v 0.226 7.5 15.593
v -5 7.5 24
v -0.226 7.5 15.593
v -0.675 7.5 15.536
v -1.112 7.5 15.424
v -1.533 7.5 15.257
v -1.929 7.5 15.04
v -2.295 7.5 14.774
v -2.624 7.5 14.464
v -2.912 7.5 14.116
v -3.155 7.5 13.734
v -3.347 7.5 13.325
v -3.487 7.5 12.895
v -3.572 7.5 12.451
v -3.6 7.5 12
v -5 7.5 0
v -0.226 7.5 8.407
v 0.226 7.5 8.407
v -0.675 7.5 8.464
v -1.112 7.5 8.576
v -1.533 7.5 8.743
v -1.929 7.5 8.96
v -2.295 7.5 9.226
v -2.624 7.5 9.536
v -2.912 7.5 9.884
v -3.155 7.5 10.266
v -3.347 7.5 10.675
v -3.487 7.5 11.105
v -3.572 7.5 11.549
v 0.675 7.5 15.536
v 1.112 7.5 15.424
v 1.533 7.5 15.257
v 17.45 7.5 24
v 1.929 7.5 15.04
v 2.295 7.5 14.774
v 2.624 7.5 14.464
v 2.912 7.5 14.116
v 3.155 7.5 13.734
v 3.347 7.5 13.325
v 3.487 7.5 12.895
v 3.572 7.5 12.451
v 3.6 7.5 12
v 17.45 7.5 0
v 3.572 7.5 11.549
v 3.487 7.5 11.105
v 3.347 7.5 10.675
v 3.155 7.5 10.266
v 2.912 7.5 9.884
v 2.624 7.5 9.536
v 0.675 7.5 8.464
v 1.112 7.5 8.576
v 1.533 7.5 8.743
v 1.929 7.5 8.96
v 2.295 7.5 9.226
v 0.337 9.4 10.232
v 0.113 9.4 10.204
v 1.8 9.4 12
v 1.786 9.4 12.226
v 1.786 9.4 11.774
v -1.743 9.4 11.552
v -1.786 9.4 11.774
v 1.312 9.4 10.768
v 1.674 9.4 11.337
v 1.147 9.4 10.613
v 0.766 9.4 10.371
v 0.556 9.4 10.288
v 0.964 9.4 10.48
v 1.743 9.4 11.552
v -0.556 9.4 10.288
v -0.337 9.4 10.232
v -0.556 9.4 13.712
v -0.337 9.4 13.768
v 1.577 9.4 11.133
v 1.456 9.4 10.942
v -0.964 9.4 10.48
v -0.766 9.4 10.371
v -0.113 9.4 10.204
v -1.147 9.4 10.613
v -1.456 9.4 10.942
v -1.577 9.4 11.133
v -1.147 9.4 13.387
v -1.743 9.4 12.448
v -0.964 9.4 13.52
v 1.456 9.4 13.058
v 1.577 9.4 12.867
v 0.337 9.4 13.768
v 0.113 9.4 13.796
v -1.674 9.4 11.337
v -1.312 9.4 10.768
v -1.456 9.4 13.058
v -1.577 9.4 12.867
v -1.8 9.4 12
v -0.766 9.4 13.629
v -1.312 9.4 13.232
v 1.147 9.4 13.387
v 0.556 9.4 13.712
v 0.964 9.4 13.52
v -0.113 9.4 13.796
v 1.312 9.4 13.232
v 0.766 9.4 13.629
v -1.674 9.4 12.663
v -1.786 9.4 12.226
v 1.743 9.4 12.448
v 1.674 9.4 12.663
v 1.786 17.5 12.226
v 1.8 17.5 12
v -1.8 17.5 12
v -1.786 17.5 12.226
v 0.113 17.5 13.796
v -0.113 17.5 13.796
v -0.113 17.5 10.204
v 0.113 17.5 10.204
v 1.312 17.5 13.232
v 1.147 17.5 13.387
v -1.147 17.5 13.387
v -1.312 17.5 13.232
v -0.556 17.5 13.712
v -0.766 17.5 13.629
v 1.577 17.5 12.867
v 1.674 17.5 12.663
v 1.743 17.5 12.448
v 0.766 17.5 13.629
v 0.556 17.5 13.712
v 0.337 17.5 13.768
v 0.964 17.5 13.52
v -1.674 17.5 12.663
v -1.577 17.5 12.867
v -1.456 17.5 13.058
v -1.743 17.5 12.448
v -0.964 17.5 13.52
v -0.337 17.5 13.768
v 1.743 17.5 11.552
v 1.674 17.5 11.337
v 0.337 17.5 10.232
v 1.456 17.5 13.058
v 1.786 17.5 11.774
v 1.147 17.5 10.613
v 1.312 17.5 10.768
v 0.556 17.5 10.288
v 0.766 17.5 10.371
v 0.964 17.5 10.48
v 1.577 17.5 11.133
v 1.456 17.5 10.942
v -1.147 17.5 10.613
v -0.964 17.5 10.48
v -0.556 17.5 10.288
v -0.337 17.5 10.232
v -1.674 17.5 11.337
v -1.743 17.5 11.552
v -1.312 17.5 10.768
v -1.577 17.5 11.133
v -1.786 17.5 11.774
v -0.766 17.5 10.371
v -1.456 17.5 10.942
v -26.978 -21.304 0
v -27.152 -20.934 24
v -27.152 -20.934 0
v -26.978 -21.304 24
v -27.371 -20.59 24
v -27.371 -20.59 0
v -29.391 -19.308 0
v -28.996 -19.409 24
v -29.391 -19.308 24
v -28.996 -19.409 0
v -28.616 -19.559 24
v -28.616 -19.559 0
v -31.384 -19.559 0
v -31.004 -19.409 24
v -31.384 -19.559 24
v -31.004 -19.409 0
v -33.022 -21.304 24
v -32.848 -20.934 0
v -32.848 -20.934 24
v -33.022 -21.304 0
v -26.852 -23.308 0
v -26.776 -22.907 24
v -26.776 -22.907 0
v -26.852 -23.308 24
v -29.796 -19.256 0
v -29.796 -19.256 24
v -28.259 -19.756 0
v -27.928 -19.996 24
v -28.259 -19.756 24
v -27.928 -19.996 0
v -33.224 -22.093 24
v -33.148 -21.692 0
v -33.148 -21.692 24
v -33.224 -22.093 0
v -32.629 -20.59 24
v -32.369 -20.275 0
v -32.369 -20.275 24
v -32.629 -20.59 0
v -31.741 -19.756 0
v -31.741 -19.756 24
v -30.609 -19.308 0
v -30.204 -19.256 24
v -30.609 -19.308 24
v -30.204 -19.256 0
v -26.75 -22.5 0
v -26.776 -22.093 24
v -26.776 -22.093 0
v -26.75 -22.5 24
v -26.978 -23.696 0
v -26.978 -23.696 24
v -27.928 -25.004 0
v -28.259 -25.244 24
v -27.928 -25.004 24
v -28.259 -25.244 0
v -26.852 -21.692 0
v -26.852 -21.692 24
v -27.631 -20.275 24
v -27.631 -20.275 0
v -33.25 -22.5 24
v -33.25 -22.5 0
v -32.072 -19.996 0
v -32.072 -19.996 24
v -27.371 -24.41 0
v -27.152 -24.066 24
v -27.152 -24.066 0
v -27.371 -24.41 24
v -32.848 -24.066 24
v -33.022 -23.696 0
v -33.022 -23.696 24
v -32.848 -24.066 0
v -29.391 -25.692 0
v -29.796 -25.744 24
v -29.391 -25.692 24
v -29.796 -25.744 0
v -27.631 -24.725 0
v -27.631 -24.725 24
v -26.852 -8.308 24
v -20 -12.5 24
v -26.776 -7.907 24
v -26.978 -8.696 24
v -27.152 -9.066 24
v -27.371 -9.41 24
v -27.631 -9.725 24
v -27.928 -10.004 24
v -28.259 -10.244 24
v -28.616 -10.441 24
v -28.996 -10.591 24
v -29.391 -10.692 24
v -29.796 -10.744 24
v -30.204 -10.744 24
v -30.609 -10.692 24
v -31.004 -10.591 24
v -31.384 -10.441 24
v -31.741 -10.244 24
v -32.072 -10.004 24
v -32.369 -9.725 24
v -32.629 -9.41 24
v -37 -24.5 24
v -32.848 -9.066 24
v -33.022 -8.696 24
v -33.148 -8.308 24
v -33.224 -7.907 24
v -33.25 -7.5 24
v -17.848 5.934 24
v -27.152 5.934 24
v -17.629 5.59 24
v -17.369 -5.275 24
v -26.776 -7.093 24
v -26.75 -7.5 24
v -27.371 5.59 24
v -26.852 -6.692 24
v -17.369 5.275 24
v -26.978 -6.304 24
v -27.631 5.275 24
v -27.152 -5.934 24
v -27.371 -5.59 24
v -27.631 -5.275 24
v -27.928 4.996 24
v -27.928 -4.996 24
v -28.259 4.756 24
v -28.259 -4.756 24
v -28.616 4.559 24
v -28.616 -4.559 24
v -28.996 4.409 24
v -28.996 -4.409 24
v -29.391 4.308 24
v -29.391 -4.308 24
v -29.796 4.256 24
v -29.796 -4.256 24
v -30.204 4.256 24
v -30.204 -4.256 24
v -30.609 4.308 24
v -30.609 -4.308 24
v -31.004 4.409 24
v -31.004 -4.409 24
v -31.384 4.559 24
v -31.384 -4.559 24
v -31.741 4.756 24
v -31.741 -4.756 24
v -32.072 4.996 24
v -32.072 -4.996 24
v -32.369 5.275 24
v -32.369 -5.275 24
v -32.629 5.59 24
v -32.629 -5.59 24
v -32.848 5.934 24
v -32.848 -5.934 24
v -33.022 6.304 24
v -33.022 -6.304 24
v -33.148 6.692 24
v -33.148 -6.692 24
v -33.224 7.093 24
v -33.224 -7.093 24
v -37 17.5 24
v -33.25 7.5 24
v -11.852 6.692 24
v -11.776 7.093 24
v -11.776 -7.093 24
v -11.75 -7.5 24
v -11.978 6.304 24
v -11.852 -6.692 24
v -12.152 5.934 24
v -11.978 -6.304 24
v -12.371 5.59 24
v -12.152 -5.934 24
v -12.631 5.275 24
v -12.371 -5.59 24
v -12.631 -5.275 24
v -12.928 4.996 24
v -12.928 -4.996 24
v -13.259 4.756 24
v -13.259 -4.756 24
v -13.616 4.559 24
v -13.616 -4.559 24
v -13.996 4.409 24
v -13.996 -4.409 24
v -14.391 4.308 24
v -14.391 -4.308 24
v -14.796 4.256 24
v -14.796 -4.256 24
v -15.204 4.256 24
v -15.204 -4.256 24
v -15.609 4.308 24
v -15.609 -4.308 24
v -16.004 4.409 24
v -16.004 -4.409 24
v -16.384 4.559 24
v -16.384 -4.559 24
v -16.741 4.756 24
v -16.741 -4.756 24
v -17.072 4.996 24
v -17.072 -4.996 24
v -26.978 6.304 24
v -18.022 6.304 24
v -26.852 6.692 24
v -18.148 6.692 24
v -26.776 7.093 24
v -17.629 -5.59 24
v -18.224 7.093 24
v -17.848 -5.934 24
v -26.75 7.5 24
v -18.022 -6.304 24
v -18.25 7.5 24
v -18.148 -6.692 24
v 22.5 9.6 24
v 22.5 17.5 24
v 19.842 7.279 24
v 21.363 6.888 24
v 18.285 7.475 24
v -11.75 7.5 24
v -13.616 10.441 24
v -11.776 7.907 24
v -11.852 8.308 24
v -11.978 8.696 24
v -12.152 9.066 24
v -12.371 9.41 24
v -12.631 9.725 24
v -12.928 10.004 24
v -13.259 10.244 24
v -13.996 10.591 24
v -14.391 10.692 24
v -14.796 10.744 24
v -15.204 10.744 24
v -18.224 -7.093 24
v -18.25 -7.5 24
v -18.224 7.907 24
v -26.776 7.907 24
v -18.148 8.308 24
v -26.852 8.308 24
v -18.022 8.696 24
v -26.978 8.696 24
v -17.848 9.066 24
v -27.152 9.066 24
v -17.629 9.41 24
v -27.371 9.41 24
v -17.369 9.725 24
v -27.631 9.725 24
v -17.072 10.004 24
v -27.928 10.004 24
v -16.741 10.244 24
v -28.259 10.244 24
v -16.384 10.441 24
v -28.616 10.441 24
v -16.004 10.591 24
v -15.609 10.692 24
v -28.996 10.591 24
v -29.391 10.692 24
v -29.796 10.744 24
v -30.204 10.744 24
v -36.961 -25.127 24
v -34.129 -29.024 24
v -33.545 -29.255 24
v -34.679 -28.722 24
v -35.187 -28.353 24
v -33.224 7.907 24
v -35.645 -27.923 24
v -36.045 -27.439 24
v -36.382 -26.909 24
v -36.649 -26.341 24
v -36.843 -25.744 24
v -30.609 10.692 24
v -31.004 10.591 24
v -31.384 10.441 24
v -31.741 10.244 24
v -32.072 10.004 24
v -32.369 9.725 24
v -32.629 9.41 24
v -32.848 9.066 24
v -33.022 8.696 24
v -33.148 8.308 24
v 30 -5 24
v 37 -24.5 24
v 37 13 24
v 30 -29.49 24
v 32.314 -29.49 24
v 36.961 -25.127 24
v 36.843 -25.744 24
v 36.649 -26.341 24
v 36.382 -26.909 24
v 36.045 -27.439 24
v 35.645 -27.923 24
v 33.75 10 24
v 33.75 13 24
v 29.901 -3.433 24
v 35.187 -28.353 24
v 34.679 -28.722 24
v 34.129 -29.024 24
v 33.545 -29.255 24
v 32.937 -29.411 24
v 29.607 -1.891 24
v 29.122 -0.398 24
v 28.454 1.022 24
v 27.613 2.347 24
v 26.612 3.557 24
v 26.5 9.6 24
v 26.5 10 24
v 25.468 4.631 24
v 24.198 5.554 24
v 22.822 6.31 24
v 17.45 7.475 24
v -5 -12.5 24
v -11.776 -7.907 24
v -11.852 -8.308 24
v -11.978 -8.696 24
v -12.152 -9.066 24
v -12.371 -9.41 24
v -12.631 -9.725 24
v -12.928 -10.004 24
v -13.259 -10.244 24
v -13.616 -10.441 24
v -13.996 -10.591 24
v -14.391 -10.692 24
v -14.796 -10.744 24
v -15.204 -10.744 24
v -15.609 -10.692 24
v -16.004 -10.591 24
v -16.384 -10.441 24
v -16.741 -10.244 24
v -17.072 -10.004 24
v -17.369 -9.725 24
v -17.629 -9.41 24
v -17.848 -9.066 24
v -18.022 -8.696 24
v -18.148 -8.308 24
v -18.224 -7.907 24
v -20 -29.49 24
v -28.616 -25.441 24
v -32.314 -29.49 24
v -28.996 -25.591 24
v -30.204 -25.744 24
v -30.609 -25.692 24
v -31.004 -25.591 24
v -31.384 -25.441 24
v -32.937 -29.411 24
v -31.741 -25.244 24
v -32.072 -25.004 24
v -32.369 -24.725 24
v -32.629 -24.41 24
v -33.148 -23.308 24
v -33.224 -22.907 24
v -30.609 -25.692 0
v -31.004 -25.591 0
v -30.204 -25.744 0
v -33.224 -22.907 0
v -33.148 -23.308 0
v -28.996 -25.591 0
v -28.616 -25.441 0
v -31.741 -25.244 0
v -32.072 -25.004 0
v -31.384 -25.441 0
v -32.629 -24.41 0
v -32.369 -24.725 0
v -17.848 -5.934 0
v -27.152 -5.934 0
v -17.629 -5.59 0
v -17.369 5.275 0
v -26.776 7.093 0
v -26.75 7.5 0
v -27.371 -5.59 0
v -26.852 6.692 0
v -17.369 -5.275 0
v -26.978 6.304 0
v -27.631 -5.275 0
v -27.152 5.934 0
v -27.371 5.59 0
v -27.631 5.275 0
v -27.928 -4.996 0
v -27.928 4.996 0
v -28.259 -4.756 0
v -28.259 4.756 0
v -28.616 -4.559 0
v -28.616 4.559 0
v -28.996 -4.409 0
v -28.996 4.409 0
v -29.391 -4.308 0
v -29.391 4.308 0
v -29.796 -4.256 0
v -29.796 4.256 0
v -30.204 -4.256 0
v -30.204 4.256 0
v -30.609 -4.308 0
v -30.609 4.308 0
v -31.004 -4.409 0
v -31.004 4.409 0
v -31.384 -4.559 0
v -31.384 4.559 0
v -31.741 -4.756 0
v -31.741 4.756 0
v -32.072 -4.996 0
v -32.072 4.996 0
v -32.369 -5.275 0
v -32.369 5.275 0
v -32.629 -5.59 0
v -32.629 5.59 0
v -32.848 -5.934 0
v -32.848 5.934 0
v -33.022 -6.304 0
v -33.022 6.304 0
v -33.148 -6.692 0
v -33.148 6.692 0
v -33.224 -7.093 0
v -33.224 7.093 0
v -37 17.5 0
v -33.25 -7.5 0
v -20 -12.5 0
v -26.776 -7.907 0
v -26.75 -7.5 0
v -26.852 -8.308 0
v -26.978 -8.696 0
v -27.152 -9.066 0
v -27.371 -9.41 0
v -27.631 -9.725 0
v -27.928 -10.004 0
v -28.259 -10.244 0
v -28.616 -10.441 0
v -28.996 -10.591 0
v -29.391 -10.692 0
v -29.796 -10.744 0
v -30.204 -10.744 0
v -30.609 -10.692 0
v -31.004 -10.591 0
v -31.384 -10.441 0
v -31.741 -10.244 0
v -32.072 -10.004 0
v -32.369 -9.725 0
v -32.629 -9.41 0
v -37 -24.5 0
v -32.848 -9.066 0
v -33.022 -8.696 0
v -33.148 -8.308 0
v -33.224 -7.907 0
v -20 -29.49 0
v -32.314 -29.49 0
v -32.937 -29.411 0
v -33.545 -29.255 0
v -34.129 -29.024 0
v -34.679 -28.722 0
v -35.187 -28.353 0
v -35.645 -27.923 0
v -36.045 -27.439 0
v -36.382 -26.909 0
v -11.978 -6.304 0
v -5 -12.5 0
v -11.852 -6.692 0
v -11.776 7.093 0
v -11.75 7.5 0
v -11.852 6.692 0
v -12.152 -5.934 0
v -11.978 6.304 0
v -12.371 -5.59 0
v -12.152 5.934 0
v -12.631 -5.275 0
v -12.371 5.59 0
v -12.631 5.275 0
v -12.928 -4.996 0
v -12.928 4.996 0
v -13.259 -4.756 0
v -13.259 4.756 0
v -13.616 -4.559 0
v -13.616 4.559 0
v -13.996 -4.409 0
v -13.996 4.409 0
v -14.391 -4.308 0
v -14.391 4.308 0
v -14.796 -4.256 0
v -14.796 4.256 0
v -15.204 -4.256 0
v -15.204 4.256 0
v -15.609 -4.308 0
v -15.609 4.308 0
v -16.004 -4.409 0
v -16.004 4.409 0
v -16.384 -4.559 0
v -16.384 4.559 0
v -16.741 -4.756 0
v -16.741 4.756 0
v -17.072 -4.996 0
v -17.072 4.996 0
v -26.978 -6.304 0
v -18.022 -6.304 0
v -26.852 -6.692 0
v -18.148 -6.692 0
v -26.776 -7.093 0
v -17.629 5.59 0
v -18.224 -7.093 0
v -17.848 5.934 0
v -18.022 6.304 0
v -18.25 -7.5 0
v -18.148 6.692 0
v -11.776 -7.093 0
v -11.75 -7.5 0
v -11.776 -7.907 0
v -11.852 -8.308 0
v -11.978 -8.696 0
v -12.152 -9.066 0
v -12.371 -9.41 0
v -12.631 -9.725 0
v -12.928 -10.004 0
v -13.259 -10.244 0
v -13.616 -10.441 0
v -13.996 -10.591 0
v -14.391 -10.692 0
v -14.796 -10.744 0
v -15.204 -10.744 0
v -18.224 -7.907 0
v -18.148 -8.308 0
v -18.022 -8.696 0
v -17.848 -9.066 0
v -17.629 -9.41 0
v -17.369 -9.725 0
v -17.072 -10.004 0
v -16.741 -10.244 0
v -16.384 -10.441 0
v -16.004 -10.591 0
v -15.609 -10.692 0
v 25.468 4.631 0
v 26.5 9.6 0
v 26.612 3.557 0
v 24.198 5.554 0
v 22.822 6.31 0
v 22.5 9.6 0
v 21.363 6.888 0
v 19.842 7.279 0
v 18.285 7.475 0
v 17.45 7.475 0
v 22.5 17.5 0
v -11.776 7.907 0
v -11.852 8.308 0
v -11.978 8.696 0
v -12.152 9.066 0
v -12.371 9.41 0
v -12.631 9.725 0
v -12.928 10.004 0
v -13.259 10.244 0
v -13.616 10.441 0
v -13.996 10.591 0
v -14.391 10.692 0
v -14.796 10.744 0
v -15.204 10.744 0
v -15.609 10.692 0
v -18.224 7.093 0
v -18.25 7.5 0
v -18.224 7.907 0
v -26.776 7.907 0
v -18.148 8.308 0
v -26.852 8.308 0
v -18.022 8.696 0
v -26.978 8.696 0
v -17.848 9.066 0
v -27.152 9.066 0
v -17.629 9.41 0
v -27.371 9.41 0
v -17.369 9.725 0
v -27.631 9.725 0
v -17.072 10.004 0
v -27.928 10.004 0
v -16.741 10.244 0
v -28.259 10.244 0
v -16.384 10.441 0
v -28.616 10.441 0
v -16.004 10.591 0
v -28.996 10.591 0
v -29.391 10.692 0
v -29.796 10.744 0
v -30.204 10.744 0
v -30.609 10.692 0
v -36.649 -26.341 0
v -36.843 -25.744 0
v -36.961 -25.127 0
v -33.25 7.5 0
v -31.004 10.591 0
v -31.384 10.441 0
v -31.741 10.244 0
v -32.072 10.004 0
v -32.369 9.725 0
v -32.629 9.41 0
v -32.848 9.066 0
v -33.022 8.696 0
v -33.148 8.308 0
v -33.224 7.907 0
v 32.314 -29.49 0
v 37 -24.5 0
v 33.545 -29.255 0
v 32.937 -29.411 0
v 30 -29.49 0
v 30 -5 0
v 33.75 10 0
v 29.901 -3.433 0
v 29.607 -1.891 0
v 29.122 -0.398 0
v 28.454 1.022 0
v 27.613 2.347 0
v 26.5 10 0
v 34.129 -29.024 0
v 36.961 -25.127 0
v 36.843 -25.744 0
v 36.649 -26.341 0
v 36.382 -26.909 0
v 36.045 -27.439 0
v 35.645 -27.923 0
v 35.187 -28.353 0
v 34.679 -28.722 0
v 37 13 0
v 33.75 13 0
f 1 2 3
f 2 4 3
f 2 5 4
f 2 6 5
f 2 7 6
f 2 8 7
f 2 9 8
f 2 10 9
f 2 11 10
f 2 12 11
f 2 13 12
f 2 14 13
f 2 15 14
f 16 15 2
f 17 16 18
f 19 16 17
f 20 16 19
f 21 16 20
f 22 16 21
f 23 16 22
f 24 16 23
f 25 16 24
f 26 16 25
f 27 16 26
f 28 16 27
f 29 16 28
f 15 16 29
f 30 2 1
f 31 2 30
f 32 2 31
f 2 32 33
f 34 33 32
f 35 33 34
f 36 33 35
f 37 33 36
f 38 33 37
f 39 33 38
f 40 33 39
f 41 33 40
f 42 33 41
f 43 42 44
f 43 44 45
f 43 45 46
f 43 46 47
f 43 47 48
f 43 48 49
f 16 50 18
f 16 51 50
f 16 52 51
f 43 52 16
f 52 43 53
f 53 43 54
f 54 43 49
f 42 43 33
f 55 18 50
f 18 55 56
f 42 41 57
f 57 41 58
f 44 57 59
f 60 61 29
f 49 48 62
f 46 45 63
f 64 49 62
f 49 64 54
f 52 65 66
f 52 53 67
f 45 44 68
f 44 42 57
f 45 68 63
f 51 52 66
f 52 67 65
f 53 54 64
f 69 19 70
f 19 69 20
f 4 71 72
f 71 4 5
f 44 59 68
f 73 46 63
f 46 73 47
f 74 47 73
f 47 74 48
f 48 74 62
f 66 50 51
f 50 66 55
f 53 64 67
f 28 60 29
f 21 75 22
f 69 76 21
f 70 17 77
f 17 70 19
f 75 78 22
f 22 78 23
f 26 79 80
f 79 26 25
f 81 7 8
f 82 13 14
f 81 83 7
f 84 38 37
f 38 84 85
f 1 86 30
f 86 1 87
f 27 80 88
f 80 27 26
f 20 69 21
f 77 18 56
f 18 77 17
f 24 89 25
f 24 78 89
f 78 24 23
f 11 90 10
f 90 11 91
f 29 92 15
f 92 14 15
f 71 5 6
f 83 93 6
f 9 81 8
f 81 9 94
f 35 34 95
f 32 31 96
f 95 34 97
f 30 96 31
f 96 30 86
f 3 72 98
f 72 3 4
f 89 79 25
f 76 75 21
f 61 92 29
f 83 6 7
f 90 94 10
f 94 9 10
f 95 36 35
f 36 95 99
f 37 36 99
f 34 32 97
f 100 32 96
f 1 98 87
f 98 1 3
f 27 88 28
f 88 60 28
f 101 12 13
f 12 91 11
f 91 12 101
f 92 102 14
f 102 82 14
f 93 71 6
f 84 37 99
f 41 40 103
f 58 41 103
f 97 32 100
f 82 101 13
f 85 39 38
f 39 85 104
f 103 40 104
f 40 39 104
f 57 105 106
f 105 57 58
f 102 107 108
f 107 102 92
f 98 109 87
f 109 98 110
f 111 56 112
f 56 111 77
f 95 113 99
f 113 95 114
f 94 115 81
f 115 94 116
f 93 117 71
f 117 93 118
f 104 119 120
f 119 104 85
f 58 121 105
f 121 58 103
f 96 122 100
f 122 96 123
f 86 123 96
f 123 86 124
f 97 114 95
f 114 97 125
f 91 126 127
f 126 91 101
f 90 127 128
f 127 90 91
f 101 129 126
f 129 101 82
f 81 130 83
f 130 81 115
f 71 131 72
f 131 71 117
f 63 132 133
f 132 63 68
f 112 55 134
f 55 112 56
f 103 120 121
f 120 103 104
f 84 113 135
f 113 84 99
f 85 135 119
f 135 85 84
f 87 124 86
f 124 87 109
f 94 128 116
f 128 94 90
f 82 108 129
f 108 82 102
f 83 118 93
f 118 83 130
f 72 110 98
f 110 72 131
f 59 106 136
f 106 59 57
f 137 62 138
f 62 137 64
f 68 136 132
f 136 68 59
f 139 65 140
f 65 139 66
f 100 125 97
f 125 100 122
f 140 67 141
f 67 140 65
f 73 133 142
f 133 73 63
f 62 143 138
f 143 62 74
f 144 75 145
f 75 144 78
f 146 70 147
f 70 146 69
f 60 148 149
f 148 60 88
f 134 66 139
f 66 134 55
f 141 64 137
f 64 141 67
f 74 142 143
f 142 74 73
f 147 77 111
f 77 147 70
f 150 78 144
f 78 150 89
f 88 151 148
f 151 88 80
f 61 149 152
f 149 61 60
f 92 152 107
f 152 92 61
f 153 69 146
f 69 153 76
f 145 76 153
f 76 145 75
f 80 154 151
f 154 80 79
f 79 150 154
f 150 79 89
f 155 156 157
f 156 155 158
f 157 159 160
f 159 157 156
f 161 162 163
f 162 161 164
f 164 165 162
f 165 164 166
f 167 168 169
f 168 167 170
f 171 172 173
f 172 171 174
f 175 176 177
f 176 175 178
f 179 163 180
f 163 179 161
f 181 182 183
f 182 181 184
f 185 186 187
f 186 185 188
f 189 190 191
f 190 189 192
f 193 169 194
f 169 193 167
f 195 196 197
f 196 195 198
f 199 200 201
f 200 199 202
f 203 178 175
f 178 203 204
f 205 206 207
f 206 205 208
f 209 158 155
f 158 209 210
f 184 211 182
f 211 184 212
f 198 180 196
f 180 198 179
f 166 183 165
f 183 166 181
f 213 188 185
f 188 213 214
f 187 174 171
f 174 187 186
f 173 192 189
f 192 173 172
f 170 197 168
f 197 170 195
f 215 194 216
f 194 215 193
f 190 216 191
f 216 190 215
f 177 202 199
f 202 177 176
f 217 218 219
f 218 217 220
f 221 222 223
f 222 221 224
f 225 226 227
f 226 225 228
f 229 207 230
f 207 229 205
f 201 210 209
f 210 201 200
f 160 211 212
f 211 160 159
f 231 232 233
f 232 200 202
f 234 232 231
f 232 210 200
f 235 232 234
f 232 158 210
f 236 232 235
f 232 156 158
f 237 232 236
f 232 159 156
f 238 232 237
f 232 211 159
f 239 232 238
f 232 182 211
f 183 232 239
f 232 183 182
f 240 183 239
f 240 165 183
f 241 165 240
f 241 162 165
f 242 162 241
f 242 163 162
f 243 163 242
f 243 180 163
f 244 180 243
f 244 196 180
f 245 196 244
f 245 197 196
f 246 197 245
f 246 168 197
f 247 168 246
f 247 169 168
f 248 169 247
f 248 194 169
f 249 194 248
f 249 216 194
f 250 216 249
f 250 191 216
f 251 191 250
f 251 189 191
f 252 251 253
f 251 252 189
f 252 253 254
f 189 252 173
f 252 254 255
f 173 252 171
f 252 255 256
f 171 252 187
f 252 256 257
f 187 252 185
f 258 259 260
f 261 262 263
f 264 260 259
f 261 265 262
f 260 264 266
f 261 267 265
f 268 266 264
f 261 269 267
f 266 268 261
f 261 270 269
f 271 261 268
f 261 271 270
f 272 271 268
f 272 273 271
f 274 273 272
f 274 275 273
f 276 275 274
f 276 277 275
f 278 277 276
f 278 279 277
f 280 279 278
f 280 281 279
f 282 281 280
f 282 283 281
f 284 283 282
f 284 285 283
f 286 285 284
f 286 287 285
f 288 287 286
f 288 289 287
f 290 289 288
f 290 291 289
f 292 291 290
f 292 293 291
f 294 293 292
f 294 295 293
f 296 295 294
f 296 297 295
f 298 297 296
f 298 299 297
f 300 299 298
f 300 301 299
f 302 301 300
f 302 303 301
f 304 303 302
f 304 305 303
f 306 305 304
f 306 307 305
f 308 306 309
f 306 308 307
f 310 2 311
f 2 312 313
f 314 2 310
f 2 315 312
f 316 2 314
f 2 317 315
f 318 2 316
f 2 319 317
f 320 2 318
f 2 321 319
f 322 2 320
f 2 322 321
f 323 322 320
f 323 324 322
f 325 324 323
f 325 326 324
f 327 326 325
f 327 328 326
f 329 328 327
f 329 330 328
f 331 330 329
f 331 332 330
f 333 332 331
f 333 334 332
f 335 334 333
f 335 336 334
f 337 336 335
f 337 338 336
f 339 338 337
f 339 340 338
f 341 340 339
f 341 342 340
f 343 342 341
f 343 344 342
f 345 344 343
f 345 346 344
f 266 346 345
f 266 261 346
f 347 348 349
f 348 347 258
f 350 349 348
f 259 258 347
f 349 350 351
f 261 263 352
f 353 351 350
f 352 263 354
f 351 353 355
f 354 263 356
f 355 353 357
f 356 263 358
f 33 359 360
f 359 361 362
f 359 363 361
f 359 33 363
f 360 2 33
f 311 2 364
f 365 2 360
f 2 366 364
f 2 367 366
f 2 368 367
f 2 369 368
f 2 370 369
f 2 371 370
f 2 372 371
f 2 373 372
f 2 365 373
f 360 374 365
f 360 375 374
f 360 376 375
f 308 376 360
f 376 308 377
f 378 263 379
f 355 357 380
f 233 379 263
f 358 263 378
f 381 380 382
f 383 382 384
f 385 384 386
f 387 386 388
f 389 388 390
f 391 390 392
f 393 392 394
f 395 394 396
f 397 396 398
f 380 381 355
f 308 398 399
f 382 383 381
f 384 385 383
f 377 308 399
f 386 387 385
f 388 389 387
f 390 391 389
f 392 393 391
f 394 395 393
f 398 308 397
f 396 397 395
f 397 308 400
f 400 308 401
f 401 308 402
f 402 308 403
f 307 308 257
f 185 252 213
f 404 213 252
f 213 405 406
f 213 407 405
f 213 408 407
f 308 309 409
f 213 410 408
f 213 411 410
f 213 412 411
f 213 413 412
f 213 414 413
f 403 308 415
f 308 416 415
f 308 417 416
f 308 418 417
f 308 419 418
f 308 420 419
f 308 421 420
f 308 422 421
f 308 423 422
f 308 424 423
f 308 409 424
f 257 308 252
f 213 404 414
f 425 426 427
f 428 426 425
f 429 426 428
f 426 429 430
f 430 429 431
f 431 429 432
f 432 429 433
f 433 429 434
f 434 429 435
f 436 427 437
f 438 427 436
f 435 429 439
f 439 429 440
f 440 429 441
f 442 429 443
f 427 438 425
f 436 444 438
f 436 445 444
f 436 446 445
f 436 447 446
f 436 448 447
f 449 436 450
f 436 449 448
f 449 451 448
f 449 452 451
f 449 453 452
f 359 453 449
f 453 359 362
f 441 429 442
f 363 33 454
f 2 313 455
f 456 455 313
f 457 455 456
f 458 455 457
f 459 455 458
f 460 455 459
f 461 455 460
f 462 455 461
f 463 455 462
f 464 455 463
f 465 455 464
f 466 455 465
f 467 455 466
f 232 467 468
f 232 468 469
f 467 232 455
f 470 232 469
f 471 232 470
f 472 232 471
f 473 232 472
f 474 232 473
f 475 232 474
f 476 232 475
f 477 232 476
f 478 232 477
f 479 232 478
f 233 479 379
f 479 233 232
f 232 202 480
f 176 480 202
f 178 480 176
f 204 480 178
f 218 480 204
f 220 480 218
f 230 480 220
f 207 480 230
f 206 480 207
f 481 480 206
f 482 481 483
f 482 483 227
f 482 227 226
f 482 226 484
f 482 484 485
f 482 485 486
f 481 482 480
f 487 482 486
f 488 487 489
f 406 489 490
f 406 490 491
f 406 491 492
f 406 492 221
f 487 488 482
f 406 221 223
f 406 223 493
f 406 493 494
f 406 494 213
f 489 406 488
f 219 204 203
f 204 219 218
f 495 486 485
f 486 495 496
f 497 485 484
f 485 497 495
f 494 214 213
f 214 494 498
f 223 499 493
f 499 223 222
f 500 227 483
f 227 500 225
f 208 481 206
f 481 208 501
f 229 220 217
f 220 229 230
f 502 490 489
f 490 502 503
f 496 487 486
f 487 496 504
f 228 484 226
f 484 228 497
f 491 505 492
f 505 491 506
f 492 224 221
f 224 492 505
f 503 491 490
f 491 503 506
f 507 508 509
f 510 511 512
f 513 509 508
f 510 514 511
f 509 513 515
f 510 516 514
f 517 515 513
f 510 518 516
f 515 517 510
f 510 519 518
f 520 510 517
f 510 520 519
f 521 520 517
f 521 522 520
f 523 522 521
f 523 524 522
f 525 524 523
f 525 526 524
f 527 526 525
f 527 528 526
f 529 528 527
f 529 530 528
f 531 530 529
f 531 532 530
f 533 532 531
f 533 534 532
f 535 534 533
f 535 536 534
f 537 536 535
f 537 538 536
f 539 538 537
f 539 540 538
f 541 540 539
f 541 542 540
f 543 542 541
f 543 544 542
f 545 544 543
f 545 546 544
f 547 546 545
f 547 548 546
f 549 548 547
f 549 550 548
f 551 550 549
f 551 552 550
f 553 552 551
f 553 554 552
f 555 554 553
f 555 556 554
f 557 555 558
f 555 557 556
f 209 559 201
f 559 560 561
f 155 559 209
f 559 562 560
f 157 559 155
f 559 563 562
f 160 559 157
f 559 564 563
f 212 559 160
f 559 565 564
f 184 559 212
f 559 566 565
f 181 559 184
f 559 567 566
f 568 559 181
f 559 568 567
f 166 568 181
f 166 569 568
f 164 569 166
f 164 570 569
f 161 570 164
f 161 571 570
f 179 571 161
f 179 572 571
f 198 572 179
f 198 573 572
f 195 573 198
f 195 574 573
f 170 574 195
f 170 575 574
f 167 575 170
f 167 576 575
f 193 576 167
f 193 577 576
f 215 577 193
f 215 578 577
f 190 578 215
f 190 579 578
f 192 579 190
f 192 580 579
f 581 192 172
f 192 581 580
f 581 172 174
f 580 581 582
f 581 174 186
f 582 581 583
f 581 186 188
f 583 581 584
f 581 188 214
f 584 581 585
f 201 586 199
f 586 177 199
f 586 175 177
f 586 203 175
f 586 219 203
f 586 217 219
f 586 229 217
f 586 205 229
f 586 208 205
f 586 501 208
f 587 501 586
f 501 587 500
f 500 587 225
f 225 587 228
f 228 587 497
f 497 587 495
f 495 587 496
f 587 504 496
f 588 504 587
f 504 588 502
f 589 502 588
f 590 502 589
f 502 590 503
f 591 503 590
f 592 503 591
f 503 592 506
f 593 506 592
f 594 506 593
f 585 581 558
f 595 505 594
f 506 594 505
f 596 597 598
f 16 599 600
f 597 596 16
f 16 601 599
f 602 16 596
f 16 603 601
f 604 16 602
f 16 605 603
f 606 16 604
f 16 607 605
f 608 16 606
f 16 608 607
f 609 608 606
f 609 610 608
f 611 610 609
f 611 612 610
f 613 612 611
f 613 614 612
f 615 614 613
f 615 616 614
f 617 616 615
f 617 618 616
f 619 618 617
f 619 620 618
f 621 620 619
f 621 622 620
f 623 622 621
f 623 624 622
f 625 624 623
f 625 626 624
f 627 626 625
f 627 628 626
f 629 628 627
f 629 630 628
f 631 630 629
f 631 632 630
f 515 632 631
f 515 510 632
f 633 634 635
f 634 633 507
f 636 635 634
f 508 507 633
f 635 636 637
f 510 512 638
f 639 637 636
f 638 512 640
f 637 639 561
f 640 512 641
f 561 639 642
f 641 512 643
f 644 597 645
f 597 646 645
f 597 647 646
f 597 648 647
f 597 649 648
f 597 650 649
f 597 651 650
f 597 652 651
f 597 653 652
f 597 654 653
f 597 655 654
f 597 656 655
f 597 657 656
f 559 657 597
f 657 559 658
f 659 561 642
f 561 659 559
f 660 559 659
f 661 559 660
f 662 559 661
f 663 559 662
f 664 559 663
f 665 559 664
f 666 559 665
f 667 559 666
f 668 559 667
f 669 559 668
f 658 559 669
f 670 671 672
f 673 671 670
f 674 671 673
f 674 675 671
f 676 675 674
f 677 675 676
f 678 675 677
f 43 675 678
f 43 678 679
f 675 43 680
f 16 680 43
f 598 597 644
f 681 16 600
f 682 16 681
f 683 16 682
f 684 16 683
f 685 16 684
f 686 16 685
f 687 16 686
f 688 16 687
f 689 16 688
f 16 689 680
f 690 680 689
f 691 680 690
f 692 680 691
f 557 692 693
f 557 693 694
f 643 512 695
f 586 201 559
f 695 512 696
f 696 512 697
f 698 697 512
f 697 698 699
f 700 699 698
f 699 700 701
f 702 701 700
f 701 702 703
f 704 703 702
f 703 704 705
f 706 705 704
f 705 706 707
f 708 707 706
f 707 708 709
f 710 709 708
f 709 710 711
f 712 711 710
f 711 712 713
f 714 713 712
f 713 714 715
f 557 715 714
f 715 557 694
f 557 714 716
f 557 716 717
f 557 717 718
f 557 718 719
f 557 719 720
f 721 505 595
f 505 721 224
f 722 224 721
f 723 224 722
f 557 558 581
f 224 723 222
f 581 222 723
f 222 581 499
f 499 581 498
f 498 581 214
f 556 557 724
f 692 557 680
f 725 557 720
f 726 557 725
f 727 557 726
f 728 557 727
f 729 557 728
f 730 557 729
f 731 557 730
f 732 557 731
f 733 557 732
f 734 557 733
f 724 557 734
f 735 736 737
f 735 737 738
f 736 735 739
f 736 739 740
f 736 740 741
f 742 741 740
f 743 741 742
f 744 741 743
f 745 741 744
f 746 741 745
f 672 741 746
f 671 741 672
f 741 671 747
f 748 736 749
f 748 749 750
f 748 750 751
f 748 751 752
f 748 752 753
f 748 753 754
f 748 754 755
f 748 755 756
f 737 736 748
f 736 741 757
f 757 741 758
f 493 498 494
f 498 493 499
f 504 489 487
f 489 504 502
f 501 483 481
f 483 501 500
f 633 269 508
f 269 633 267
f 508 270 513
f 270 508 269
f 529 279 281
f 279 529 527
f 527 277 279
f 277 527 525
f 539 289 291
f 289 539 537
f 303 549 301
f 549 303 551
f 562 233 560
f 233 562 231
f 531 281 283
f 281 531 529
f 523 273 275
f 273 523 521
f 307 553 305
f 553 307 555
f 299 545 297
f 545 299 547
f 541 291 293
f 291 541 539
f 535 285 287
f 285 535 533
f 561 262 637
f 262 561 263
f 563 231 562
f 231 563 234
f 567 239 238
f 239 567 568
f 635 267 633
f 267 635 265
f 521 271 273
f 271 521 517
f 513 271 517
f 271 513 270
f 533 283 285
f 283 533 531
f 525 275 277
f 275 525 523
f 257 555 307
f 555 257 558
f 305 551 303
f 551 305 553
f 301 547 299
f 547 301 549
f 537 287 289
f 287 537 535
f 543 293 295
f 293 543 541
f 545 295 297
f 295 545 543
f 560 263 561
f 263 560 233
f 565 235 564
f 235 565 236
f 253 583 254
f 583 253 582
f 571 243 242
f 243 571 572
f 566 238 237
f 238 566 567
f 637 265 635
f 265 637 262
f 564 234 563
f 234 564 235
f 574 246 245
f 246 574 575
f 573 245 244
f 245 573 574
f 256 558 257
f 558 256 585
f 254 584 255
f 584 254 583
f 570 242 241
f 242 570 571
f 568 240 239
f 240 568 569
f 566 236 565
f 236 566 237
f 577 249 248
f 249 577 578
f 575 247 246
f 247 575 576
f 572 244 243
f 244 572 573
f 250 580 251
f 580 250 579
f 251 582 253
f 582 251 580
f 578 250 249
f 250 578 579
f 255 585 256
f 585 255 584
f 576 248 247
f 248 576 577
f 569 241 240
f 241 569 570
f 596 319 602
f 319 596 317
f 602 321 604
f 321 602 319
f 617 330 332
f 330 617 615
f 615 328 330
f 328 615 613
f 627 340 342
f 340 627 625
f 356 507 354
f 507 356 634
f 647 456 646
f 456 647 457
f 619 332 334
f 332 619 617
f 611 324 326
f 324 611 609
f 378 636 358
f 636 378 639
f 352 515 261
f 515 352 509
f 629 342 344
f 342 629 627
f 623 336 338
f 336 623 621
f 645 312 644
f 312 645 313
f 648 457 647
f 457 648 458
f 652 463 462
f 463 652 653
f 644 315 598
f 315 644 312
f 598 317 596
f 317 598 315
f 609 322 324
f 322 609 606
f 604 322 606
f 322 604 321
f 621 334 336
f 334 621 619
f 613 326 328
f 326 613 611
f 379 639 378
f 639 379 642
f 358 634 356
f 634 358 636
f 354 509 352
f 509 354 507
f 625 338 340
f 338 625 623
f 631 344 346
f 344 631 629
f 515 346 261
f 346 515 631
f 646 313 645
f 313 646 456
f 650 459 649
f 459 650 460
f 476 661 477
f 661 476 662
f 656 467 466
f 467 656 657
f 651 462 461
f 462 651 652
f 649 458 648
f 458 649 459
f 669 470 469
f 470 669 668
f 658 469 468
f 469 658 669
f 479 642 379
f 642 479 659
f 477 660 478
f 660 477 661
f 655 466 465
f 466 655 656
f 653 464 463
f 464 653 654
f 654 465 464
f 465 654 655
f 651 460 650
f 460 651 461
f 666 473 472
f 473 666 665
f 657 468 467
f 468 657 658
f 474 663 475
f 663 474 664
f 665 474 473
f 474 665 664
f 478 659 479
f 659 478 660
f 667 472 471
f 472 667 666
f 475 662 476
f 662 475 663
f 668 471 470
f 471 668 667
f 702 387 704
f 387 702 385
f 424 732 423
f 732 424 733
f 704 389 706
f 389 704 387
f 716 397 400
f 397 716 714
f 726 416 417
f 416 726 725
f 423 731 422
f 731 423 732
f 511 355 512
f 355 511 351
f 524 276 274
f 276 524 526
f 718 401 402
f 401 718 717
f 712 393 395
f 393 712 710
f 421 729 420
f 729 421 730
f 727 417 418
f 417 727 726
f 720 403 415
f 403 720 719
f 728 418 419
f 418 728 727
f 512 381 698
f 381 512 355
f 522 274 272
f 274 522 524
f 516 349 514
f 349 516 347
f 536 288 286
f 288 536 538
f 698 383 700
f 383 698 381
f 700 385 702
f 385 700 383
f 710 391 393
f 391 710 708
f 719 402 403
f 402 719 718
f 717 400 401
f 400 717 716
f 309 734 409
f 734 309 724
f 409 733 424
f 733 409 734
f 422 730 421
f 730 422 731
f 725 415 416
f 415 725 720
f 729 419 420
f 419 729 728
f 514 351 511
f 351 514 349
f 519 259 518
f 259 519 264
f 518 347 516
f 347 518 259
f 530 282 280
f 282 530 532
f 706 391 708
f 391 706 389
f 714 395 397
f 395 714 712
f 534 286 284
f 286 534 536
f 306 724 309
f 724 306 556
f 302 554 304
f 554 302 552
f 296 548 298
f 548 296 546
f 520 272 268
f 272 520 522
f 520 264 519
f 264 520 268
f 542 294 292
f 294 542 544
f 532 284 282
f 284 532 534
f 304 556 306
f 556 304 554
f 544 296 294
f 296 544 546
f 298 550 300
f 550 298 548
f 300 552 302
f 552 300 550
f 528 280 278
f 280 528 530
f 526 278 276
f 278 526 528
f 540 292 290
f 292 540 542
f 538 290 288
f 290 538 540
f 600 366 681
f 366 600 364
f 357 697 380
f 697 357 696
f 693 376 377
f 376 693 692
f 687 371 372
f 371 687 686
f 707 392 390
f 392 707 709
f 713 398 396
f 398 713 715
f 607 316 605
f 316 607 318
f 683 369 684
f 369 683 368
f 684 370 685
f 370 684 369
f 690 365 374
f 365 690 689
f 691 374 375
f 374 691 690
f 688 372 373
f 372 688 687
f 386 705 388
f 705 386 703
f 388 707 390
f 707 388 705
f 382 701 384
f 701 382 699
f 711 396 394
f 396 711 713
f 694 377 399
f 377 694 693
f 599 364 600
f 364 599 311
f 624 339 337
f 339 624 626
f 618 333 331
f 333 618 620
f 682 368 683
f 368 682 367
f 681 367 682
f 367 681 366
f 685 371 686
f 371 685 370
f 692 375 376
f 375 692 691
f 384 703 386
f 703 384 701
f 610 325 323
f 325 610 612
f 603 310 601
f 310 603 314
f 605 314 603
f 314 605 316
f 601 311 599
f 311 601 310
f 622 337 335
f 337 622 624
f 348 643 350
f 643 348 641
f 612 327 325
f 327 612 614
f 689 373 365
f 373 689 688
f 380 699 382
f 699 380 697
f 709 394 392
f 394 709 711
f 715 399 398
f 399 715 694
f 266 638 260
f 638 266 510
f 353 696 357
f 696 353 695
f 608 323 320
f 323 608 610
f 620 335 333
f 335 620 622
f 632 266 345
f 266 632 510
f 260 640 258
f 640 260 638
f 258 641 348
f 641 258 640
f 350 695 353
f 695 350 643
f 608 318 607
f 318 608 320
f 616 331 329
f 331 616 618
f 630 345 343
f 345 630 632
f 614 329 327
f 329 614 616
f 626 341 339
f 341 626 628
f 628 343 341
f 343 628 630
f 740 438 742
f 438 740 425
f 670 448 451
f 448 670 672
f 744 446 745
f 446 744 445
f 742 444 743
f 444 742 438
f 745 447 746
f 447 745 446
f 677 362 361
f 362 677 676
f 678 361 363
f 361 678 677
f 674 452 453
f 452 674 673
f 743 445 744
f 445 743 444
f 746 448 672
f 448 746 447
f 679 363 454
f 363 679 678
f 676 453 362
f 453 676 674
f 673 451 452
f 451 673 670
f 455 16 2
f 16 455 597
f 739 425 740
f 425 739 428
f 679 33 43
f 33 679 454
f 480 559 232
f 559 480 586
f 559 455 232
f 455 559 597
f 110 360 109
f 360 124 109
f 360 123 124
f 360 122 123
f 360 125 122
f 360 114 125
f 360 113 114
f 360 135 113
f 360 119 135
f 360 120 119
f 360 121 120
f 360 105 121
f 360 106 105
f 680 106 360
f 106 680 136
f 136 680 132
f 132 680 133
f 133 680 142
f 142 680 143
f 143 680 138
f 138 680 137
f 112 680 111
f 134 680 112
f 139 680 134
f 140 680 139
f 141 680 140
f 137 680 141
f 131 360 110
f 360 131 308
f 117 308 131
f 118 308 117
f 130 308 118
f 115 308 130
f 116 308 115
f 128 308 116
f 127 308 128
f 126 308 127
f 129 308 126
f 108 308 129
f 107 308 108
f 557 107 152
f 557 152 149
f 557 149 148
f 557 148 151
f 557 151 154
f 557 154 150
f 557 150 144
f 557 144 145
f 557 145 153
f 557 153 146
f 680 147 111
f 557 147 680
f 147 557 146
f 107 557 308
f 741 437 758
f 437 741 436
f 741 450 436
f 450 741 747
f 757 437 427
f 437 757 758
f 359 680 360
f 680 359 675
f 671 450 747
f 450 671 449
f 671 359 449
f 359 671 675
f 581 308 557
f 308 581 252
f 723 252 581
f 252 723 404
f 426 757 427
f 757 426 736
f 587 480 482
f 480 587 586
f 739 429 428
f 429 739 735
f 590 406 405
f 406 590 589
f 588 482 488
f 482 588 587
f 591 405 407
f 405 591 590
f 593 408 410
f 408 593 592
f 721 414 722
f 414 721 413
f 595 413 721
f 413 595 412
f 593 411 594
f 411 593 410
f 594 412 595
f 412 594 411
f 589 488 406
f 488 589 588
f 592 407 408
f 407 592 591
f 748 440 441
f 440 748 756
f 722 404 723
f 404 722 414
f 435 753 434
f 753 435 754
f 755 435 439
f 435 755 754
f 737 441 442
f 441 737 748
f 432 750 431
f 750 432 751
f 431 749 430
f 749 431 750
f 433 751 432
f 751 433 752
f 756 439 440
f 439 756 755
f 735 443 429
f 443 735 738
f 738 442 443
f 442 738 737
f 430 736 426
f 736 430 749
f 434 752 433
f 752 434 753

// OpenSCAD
$fn = 50;


difference() {
	union() {
		hull() {
			translate(v = [-32.0000000000, 24.5000000000, 0]) {
				cylinder(h = 24, r = 5);
			}
			translate(v = [32.0000000000, 24.5000000000, 0]) {
				cylinder(h = 24, r = 5);
			}
			translate(v = [-32.0000000000, -24.5000000000, 0]) {
				cylinder(h = 24, r = 5);
			}
			translate(v = [32.0000000000, -24.5000000000, 0]) {
				cylinder(h = 24, r = 5);
			}
		}
	}
	union() {
		translate(v = [0, 7.5000000000, 12.0000000000]) {
			rotate(a = [90, 0, 0]) {
				difference() {
					union() {
						#translate(v = [0, 0, -12.0000000000]) {
							cylinder(h = 12, r = 1.5000000000);
						}
						#translate(v = [0, 0, -1.9000000000]) {
							cylinder(h = 1.9000000000, r1 = 1.8000000000, r2 = 3.6000000000);
						}
						#translate(v = [0, 0, -12.0000000000]) {
							cylinder(h = 12, r = 1.8000000000);
						}
						#translate(v = [0, 0, -12.0000000000]) {
							cylinder(h = 12, r = 1.5000000000);
						}
					}
					union();
				}
			}
		}
		translate(v = [-30.0000000000, -22.5000000000, 0]) {
			cylinder(h = 24, r = 3.2500000000);
		}
		translate(v = [-30.0000000000, -7.5000000000, 0]) {
			cylinder(h = 24, r = 3.2500000000);
		}
		translate(v = [-15.0000000000, -7.5000000000, 0]) {
			cylinder(h = 24, r = 3.2500000000);
		}
		translate(v = [-30.0000000000, 7.5000000000, 0]) {
			cylinder(h = 24, r = 3.2500000000);
		}
		translate(v = [-15.0000000000, 7.5000000000, 0]) {
			cylinder(h = 24, r = 3.2500000000);
		}
		translate(v = [17.5000000000, -5, 0.0000000000]) {
			cylinder(h = 24, r = 12.5000000000);
		}
		translate(v = [-5.0000000000, -95.0000000000, 0]) {
			cube(size = [35, 90, 24]);
		}
		translate(v = [-5.0000000000, -95.0000000000, 0]) {
			cube(size = [22.4500000000, 102.5000000000, 24]);
		}
		translate(v = [-20.0000000000, -72.5000000000, 0]) {
			cube(size = [50, 60, 24]);
		}
		translate(v = [-58.5000000000, 17.5000000000, 0]) {
			cube(size = [100, 85, 24]);
		}
		translate(v = [26.2500000000, 10.0000000000, 0]) {
			cube(size = [7.5000000000, 100, 24]);
		}
		translate(v = [33.5000000000, 13.0000000000, 0]) {
			cube(size = [7, 94, 24]);
		}
		translate(v = [22.5000000000, 9.6000000000, 0]) {
			cube(size = [4, 8, 24]);
		}
	}
}
